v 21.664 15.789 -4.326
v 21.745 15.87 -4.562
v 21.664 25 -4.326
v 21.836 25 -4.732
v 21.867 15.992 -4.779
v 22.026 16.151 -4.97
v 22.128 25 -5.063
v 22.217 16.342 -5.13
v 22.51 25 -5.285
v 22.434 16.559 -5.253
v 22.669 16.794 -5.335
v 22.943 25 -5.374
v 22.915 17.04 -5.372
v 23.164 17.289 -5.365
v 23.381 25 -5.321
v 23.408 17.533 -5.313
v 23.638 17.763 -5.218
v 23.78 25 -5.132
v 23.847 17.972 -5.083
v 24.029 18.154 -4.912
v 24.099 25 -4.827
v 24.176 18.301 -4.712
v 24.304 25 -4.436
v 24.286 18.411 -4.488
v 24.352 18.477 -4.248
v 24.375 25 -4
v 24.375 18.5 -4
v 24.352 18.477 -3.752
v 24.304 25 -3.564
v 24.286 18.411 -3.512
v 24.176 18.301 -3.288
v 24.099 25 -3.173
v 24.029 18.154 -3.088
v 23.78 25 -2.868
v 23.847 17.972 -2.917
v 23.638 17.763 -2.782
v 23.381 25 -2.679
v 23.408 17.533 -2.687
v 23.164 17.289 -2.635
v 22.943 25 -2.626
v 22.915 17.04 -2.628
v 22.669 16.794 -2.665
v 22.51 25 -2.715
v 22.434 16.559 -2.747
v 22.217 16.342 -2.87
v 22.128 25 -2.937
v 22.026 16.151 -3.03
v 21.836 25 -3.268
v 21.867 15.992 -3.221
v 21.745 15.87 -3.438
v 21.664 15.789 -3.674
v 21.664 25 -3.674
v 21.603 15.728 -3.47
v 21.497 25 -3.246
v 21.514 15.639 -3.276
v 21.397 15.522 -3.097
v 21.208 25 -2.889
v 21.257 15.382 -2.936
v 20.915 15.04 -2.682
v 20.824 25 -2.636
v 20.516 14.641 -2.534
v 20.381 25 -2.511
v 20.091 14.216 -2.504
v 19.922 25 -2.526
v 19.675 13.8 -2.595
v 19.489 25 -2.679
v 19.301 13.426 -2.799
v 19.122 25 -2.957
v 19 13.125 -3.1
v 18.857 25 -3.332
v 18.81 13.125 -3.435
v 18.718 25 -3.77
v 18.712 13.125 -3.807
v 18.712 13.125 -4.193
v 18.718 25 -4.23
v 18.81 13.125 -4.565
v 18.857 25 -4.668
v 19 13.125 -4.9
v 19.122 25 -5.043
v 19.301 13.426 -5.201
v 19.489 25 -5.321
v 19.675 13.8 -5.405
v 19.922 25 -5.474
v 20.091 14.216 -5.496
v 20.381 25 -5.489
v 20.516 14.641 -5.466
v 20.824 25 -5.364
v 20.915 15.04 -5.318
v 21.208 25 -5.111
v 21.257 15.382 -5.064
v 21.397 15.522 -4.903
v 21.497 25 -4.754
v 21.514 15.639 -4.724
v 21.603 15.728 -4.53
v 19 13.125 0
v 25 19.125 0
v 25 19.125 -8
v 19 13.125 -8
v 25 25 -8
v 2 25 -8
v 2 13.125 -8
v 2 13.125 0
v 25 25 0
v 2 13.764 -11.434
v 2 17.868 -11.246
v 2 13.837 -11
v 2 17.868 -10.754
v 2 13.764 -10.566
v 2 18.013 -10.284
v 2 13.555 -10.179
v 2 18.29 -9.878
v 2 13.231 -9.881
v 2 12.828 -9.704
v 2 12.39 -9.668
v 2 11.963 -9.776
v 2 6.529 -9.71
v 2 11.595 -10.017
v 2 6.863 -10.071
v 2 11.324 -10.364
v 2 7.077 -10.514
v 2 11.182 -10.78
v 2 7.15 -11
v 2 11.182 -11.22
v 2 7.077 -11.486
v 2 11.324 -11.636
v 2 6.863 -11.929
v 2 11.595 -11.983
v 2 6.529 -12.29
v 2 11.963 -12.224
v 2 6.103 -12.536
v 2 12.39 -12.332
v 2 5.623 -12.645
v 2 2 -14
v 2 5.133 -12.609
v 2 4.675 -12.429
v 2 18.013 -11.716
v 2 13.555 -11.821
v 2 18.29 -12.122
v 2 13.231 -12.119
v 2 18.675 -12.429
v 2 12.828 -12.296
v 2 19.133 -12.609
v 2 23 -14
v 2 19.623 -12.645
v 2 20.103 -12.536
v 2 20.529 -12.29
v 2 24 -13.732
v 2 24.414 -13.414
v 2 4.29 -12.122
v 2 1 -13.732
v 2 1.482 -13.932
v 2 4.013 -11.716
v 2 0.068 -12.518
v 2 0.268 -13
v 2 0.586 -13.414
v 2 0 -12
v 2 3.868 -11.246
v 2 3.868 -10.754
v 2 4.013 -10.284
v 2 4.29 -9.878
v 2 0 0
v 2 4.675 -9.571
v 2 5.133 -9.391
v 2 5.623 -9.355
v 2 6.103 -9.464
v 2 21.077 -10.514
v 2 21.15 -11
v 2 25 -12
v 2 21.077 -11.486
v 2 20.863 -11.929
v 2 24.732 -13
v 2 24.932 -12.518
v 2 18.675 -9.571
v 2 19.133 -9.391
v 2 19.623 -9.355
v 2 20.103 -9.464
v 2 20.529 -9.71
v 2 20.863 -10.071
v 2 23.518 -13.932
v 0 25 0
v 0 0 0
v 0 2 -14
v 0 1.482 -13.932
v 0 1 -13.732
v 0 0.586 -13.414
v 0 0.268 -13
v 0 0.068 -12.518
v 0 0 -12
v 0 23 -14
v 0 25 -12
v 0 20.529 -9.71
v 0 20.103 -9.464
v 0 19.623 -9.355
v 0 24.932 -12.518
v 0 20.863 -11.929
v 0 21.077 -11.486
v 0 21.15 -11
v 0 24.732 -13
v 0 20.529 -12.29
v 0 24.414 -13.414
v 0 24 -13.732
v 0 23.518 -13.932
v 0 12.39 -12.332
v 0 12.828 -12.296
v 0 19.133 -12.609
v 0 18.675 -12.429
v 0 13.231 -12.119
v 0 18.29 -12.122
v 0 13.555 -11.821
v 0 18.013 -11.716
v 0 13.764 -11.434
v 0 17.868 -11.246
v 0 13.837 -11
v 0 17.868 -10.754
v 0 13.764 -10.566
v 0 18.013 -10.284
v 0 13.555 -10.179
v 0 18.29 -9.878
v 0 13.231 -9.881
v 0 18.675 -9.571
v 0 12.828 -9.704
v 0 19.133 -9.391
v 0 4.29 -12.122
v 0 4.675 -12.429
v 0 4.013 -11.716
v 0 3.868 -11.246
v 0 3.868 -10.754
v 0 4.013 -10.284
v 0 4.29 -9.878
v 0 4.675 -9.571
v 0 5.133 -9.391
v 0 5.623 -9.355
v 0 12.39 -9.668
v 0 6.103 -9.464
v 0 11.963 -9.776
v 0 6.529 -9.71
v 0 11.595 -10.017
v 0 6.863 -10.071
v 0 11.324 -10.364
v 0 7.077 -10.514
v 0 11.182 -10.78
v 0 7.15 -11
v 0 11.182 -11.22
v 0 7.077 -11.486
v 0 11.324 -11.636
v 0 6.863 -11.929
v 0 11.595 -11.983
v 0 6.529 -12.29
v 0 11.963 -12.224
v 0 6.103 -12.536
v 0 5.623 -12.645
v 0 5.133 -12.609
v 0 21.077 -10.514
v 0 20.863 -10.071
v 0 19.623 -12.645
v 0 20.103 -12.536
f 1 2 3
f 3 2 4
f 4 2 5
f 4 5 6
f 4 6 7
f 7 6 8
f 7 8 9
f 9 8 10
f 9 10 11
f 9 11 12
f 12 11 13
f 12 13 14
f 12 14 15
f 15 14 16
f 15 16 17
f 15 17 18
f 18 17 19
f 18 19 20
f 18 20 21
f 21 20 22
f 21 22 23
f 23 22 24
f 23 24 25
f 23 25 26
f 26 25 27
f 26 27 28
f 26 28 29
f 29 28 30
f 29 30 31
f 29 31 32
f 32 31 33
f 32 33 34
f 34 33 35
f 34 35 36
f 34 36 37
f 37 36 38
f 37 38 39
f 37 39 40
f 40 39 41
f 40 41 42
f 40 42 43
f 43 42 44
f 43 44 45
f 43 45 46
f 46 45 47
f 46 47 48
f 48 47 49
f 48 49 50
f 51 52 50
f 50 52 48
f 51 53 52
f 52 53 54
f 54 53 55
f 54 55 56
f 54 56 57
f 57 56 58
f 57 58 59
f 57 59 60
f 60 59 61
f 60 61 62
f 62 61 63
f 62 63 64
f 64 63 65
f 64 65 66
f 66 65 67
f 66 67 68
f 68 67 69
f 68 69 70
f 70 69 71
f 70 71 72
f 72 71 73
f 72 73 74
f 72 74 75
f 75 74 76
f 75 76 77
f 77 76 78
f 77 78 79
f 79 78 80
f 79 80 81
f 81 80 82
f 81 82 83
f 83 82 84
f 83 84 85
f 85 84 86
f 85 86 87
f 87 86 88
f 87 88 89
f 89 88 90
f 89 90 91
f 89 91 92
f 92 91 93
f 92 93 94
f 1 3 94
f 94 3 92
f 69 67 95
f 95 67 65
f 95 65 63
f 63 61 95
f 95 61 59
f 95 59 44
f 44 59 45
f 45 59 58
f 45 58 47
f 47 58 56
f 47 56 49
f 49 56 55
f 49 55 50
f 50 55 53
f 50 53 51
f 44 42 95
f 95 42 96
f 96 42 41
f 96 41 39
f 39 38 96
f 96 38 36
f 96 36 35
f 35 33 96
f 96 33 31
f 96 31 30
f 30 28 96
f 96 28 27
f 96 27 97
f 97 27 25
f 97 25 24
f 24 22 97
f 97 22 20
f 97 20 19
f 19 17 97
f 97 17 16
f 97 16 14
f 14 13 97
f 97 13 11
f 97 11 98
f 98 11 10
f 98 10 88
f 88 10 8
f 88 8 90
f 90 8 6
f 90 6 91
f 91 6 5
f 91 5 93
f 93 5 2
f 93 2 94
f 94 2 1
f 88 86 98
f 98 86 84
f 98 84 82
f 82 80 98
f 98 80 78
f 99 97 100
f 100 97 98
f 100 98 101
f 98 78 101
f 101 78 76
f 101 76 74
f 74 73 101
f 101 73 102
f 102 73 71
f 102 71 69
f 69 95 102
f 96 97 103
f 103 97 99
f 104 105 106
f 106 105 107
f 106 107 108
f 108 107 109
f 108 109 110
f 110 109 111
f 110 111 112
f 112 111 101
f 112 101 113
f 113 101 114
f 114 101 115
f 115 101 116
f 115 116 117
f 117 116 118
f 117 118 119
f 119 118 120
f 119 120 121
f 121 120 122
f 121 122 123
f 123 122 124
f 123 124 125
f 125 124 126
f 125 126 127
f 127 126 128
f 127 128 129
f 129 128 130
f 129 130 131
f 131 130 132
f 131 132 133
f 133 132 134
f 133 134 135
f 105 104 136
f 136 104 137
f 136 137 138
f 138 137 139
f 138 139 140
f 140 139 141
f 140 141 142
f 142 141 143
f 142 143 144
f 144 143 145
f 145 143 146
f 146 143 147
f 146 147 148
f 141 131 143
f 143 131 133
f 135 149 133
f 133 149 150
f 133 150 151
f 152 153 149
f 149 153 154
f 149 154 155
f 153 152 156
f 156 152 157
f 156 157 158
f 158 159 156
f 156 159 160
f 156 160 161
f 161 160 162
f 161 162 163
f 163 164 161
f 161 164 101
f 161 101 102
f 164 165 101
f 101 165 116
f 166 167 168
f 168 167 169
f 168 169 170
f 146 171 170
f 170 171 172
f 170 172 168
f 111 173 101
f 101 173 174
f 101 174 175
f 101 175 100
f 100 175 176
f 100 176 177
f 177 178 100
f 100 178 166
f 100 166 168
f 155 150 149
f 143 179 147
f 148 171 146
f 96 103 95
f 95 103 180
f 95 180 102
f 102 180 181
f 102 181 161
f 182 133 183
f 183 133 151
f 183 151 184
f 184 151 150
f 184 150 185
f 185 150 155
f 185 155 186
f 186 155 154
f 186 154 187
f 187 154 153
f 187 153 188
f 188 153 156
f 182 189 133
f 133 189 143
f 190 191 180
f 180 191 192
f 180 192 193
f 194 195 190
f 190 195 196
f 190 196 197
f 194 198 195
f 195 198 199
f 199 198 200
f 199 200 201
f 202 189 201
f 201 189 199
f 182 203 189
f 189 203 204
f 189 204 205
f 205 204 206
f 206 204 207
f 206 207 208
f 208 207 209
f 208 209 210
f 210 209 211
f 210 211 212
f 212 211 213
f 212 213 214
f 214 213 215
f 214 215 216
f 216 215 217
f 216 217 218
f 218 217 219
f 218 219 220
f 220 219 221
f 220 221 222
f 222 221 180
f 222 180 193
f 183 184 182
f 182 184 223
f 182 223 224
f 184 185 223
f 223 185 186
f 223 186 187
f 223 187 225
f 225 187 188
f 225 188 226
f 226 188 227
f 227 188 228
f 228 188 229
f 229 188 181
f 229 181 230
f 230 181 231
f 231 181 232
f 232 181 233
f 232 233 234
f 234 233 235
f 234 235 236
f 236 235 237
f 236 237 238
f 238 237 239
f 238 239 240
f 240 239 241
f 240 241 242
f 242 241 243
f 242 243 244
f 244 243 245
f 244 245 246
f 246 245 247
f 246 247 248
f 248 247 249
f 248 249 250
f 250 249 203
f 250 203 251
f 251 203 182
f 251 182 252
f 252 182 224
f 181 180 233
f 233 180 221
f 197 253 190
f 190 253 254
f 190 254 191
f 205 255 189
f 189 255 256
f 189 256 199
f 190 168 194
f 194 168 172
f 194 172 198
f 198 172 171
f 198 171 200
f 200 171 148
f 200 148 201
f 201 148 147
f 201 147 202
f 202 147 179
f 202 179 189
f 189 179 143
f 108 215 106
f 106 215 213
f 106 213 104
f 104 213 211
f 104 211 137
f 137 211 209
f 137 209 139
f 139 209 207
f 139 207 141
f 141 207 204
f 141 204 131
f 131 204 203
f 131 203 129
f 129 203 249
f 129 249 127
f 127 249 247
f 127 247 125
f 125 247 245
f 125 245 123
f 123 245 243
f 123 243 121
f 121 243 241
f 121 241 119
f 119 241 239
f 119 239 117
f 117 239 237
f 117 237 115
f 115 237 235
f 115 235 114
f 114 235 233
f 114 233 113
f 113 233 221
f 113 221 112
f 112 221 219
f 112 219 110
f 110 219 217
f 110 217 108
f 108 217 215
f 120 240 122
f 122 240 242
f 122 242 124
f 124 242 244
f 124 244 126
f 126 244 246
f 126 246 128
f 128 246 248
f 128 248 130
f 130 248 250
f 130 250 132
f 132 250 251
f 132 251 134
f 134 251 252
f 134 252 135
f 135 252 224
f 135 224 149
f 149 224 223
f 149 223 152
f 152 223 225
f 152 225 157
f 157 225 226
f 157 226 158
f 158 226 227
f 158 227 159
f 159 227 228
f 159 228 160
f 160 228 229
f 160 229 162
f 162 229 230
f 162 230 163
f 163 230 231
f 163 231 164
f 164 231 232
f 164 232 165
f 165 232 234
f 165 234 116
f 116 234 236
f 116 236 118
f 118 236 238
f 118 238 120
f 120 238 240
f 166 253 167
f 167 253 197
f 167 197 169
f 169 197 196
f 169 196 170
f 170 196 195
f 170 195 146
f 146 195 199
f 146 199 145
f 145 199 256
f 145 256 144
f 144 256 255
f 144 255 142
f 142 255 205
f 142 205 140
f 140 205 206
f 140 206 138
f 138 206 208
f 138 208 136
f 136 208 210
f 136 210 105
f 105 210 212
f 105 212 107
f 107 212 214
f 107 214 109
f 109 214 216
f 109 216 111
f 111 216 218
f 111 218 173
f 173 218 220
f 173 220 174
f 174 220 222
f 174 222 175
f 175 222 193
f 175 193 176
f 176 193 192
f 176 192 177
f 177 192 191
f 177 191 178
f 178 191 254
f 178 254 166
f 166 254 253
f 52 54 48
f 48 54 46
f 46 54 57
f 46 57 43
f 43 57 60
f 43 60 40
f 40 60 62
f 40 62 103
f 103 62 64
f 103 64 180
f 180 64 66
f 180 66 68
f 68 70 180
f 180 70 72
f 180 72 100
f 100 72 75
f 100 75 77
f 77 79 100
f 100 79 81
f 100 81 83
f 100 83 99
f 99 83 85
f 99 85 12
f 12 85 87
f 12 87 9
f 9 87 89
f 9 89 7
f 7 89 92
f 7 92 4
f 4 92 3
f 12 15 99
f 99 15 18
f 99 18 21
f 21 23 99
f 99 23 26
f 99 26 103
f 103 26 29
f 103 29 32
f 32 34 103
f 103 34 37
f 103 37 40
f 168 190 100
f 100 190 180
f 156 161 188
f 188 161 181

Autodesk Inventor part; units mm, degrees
ref_plane "YZ Plane" through (0, 0, 0) normal (1, 0, 0) x (0, 1, 0)
ref_plane "XZ Plane" through (0, 0, 0) normal (0, 1, 0) x (-1, 0, 0)
ref_plane "XY Plane" through (0, 0, 0) normal (0, 0, 1) x (1, 0, 0)
sketch "Sketch1" plane through (0, 0, 0) normal (1, 0, 0) x (0, 1, 0)
  line L0 (0, 0) -> (25, 0)
  line L1 (25, 0) -> (25, -8)
  line L2 (25, -8) -> (0, -8)
  line L3 (0, -8) -> (0, 0)
  line L4 (25, -8) -> (12.5, -8)
  line L5 (12.5, -8) -> (12.5, -14)
  line L6 (12.5, -14) -> (25, -14)
  line L7 (25, -14) -> (25, -8)
  line L8 (0, -8) -> (12.5, -8)
  line L9 (12.5, -8) -> (12.5, -14)
  line L10 (12.5, -14) -> (0, -14)
  line L11 (0, -14) -> (0, -8)
  line L12 (25, 0) -> (13.125, 0)
  line L13 (13.125, 0) -> (13.125, -8)
  line L14 (13.125, -8) -> (25, -8)
  line L15 (25, -8) -> (25, 0)
  line L16 (19.5, -11) -> (5.5, -11) construction
  circle A0 centre (19.5, -11) radius 1.65
  circle A1 centre (5.5, -11) radius 1.65
  circle A2 centre (12.5, -11) radius 1.336701
  point P0 (12.5, -8)
  point P1 (25, -11)
  point P2 (12.5, -8)
  point P3 (12.5, -8)
  point P4 (13.125, 0)
  dimension "d0" = 0.625
  dimension "d1" = 14
  dimension "d2" = 25
  dimension "d3" = 12.5
  dimension "d4" = 12.5
  dimension "d6" = 3
  dimension "d7" = 0
  dimension "d8" = 8
  dimension "d11" = 3.3
  dimension "d12" = 3.3
  dimension "d28" = 5.5
sketch "Sketch1 outline for Extrusion1" plane through (0, 0, 0) normal (1, 0, 0) x (0, 1, 0)
  line L0 (0, 0) -> (0, -8)
  line L1 (25, 0) -> (0, 0)
  line L2 (0, -8) -> (0, -14)
  line L3 (25, -8) -> (25, 0)
  line L4 (0, -14) -> (12.5, -14)
  line L5 (25, -14) -> (25, -8)
  line L6 (12.5, -14) -> (25, -14)
  circle A0 centre (5.5, -11) radius 1.65
  circle A1 centre (12.5, -11) radius 1.336701
  circle A2 centre (19.5, -11) radius 1.65
extrude "Extrusion1" add sketch "Sketch1 outline for Extrusion1" along normal blind 2
fillet "Fillet1" radius 2 3 edges at (1, 25, -14) (1, 12.5, -14) (1, 0, -14)
sketch "Sketch1 outline for Extrusion2" plane through (0, 0, 0) normal (1, 0, 0) x (0, 1, 0)
  line L0 (13.125, 0) -> (13.125, -8)
  line L1 (25, 0) -> (13.125, 0)
  line L2 (25, -8) -> (25, 0)
  line L3 (13.125, -8) -> (25, -8)
extrude "Extrusion2" add sketch "Sketch1 outline for Extrusion2" along normal blind 25
chamfer "Chamfer1" distance 6 angle 45 1 edges at (25, 13.125, -4)
sketch "Sketch2" plane through (0, 25, 0) normal (0, 1, 0) x (1, 0, 0)
  line L0 (20.2, 4) -> (23, 4) construction
  line L1 (2, 8) -> (25, 8) projected
  line L2 (0, 0) -> (25, 0) projected
  circle A0 centre (20.2, 4) radius 1.5
  circle A1 centre (23, 4) radius 1.45
  circle A2 centre (23, 4) radius 1.375
  line L3 (25, 8) -> (25, 0) projected
  point P0 (2, 4.5)
  point P1 (21.664174, 3.674126)
  point P2 (21.664174, 4.325874)
  dimension "d19" = 8
  dimension "d20" = 4
  dimension "d21" = 3
  dimension "d22" = 2.9
  dimension "d23" = 2.75
  dimension "d24" = 2
  dimension "d25" = 2.8
sketch "Sketch2 outline for Extrusion3" plane through (0, 25, 0) normal (0, 1, 0) x (1, 0, 0)
  arc A0 (21.664174, 4.325874) -> (21.664174, 3.674126) centre (20.2, 4) ccw
  arc A1 (21.664174, 3.674126) -> (21.664174, 4.325874) centre (23, 4) ccw
extrude "Extrusion3" cut sketch "Sketch2 outline for Extrusion3" against normal blind 12.5
equation "\"d3\" = 0.5 * d2"
equation "\"d4\" = d3"
equation "\"d6\" = d5"
equation "\"d12\" = d11"
equation "\"d28\" = -0.5 * d1 + 0.5 * d2"
equation "\"d20\" = 0.5 * d19"
equation "\"d5\" = 3"
properties part number "Futaba Antenna Mount"
